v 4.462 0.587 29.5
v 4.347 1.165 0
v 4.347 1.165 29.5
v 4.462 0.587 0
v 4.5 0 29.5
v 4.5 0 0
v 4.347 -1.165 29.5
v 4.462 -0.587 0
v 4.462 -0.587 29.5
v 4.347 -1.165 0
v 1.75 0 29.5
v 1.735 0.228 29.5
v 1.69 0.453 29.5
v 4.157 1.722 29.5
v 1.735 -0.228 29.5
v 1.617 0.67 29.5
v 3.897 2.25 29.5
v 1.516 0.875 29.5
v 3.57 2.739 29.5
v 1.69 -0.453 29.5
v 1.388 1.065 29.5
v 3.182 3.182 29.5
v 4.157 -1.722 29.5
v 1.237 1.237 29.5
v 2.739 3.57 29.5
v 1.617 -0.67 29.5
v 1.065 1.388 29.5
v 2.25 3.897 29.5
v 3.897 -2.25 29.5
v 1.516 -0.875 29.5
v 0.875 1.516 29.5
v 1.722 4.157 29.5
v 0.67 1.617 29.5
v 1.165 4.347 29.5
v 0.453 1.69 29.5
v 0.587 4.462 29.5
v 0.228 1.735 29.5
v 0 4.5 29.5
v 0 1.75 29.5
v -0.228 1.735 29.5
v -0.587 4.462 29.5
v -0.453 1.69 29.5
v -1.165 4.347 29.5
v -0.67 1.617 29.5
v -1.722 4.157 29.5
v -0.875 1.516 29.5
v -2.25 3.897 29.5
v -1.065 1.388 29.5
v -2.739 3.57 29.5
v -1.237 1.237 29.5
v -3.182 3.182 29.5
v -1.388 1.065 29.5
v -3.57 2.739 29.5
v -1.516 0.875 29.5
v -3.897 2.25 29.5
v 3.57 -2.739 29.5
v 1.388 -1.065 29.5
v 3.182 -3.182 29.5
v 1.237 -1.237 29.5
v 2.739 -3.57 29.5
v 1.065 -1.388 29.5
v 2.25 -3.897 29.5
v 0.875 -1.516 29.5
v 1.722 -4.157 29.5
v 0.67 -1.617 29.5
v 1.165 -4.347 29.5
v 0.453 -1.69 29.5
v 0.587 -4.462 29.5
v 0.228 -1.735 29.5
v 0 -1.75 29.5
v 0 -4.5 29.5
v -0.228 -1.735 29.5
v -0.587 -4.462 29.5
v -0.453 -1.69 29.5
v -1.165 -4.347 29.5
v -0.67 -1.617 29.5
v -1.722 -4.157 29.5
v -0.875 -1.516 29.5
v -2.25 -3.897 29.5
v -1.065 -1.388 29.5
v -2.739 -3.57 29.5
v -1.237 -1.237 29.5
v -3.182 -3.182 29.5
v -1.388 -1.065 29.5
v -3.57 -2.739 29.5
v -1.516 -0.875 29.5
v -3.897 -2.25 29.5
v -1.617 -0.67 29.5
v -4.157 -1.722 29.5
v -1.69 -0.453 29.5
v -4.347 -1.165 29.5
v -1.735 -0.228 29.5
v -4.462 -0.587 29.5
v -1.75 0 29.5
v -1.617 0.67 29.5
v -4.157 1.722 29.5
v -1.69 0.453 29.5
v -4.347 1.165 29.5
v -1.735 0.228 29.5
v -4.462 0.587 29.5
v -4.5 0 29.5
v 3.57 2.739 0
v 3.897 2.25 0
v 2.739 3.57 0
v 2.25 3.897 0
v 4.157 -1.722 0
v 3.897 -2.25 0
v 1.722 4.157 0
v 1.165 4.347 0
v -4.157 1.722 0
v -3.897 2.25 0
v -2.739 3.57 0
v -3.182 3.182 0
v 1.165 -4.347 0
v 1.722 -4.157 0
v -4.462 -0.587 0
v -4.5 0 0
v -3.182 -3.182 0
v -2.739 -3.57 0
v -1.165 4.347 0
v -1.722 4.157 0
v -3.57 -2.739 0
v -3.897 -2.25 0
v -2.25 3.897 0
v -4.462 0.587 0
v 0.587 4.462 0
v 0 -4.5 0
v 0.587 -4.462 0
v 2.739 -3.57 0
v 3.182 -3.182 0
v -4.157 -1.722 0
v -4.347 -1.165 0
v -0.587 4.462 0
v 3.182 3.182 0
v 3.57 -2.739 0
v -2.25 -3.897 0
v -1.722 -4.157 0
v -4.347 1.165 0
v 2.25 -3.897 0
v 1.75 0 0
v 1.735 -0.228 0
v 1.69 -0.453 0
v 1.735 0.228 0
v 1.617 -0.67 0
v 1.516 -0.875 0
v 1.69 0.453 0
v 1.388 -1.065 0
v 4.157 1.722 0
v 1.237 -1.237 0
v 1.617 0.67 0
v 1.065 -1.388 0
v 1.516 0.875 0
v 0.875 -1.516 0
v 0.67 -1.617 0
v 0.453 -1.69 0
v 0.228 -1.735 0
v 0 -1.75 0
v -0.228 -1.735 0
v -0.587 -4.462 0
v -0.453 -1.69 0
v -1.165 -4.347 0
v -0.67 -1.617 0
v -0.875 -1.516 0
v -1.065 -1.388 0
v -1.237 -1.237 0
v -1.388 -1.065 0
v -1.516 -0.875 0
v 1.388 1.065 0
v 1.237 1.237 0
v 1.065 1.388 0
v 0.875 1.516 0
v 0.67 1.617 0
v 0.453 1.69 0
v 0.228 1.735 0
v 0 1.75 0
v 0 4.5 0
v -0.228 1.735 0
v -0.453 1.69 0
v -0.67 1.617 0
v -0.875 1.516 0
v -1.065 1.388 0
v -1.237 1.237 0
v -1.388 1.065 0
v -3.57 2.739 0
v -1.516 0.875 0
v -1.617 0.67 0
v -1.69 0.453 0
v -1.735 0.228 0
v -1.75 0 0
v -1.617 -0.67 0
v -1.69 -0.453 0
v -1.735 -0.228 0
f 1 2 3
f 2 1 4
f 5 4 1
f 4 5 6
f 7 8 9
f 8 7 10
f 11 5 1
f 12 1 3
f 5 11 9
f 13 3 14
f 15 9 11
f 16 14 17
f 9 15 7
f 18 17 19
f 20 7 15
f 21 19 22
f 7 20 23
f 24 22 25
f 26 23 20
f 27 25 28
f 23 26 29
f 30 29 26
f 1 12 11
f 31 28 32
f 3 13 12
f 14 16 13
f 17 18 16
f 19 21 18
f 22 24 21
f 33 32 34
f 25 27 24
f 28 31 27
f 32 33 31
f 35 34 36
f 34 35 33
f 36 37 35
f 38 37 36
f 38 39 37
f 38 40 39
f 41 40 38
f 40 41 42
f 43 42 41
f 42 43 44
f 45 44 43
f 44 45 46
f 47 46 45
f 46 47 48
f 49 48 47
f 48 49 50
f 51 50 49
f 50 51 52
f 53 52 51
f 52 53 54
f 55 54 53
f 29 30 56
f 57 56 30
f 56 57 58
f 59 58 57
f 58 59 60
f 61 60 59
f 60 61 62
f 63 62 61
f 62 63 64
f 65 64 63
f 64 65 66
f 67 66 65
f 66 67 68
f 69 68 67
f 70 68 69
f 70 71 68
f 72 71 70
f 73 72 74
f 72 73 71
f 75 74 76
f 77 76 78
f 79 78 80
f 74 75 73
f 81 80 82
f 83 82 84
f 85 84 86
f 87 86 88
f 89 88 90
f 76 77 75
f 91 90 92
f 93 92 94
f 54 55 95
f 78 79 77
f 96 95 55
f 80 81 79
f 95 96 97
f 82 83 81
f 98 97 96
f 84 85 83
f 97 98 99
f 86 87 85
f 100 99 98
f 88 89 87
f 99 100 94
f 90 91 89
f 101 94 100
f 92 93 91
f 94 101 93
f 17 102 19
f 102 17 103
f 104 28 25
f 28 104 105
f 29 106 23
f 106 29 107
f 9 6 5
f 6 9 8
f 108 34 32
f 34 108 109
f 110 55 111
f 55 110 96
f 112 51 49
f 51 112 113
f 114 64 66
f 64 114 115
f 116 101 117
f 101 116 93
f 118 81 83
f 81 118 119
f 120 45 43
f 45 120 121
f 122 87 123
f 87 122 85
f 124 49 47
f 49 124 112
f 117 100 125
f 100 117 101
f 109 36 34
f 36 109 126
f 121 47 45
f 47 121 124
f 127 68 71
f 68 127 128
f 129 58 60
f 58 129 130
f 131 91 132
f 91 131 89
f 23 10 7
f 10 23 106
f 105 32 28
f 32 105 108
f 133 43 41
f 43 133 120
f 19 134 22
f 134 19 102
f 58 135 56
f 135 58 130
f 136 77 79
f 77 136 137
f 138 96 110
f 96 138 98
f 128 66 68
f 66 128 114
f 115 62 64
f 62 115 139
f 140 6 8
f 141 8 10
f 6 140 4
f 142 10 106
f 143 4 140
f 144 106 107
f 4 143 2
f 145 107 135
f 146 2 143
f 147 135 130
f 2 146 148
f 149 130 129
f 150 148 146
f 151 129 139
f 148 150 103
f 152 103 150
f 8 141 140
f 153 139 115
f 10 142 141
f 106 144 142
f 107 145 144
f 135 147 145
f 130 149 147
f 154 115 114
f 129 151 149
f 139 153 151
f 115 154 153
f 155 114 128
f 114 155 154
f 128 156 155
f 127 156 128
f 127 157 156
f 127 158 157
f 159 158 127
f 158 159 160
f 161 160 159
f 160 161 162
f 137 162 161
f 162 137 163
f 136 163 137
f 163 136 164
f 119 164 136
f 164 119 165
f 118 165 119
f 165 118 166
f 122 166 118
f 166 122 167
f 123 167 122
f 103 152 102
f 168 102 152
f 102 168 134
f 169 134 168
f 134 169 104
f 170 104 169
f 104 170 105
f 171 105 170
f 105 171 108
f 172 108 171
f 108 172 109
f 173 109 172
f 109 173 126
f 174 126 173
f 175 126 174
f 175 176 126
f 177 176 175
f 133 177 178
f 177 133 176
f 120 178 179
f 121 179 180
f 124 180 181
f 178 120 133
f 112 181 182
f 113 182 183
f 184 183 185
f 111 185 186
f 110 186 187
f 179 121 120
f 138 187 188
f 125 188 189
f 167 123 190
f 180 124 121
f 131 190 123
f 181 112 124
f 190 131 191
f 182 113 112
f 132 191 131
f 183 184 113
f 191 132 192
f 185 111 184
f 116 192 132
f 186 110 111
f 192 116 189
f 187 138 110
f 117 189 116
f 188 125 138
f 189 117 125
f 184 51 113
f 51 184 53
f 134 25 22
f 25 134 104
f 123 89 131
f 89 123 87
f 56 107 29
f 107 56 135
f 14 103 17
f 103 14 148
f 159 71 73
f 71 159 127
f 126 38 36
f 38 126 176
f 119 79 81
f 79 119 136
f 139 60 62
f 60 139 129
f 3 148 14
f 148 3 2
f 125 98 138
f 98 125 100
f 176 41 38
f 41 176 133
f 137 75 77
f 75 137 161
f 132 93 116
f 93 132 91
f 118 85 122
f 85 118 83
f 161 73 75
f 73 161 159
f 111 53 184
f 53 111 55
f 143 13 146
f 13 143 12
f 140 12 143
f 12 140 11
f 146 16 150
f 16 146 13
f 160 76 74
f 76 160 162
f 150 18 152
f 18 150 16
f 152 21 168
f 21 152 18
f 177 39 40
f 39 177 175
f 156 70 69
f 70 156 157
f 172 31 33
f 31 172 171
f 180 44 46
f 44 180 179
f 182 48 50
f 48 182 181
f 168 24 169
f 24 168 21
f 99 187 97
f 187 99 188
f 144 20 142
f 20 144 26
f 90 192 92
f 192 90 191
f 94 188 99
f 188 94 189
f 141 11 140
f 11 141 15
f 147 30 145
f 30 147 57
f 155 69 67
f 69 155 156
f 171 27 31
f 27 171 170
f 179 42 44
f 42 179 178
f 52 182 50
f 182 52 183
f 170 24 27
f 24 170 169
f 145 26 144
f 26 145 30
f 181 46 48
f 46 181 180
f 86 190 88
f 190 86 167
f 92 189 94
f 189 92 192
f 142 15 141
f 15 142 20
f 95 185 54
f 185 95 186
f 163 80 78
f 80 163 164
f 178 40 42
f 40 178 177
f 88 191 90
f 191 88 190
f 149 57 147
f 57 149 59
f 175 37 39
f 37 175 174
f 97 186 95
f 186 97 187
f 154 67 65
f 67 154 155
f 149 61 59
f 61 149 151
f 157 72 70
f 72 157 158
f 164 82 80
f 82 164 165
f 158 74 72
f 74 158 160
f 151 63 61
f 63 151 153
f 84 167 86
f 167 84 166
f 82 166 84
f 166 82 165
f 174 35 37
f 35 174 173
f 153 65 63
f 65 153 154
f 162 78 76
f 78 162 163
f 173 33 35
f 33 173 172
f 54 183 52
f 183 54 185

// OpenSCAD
// file: parameters.scad
// =============================================================================
// Gen-CC — nightly 2026-10-13 (physics_scorer, honest magpylib watts)
// Stator-only upgrade for an existing Gen-BX: the R71 rotors and Ø168 steel stay as they are; a new annular 12-bobbin stator with 6.3 mm copper (magnet gap 9.35 → 8.90 mm) and longer r52–90 bobbins (the open-centre stator now packs one size up) replaces the old one, together with a shorter gap sleeve, frame rods moved out to R93.5 and new bearing bridges. No new magnets or steel.
// Clocking 0 deg (magnets N facing S) + D-flat keyed bore + index notch + flip-symmetric hole map.
// Windable 2-piece bobbin; turns = physics_scorer turns_fit; copper only between flanges.
// Steel back-iron: 2× Ø168 × 4.76 mm (3/16") mild-steel discs (steel_backiron_disc.dxf); magnets sit ON the steel
// (through-pockets) -> score with --back-iron. Night 2026-10-13.
// =============================================================================
topology            = "dual_rotor";

// --- Wire / winding (physics_scorer winding-fit) -------------------------------
wire_awg            = 26;
wire_od             = 0.45;     // insulated OD mm (bare 0.405)
fill_realistic      = 0.65;     // insulated-wire area / window (DENSE layered wind with a jig; scorer cap 0.65)
turns               = 391;       // = physics_scorer turns_fit (do NOT raise)
coil_former_type    = "bobbin";
coil_core_inset     = 15.20;     // radial copper build: hub = copper boundary inset by this
wind_build_axial    = 0.0;      // nothing proud of the flanges
wind_build_radial   = 0.0;

// --- Bobbin (base + lid) ---------------------------------------------------------
coil_id_r           = 52.00;    // copper boundary sector
coil_od_r           = 90.00;
span_deg            = 26.36;    // = pitch - 2*asin((wall+0.85)/coil_id_r) -> >=1.2 mm stator web
former_web          = 6.30;     // copper height between flanges (TALL copper: steel keeps Bz up)
flange_t            = 0.80;     // >= 0.8 mm FDM wall rule (tall winds push on the flanges)
wall                = 0.80;     // flange lip beyond copper
former_bare_h       = former_web + 2 * flange_t;
coil_envelope_h     = former_bare_h + 2 * wind_build_axial;
tab_w               = 7.0;
tab_len             = 7.0;
tab_h               = former_bare_h / 2;
pin_d               = 1.9;      // 1.75 mm filament locating pin
coil_mount_r        = coil_od_r + 0.2 + 4.0;
lead_y              = 1.6;
lead_slot_w         = 0.9;
lead_groove_d       = 0.6;

// --- Gap -------------------------------------------------------------------------
run_clear           = 0.50;     // rotor face -> flange
gap_spacer_h        = run_clear + wind_build_axial;
m2m                 = coil_envelope_h + 2 * run_clear;   // rotor face to rotor face (= gap_sleeve length)

// --- Stator ----------------------------------------------------------------------
coil_stations       = 12;
bay_clear           = 0.25;
stator_thick        = former_bare_h;                        // bobbins flush both faces
stator_od           = 198;
shaft_clear_stator  = 14.0;     // stator is static; gap sleeve OD 12 spins inside
stator_ir           = 46.95;    // ANNULAR stator: open centre (nested one-plate pack); inner rim 4.0 mm

// --- Rotor(s) --------------------------------------------------------------------
magnet_Br           = 1.43;     // N52
magnet_d_large      = 20.0;
magnet_h_large      = 5.0;      // one O20x5 per pocket
magnet_h_small      = 5.0;      // unused: no O5 pockets in this kit
halbach_magnetisation = "none";  // NO O5 assist magnets in this kit (scan: they lower the 4-pole score)
rotor_b_same_axis   = true;     // same-index magnets share one axis: N faces S across the gap
large_pocket_d      = 20.3;
small_pocket_d      = 5.3;
pocket_h            = 5.00;     // THROUGH the carrier: magnet back face sits on the steel disc (FLUSH seat: carrier = magnet height, magnet face level with the rotor face)
large_n             = 8;
R_large             = 71.0;
small_r_list        = [];       // no O5 pockets
carrier_od          = 168.0;
carrier_thick       = pocket_h;
hub_h               = 12.0;     // > steel_t + insert: radial set-screw clears the steel
hub_od              = 24.0;     // slim hub so the M4 brace rods fit at R~18 inside the coil ring
hub_insert_d        = 4.0;      // M3 heat-set insert, radial, bears on the D-flat
rotor_b_offset_deg  = 0.0;      // CLOCKING: magnets directly opposite
shaft_key           = "dflat";
dflat_depth         = 0.5;      // 8 mm shaft with 0.5 mm flat (7.5 across flat)
index_notch_d       = 3.0;

// --- Steel back-iron (buyable laser-cut) -------------------------------------------
steel_t             = 4.76;      // mild steel thickness (image method ignores it; sized from steel_flux.py so the return path stays well below saturation)
steel_center_hole   = 26.0;     // slips over the rotor hub (OD 24)
steel_od            = carrier_od;   // steel disc OD = rotor carrier OD

// --- Modular MAX interface ----------------------------------------------------------
shaft_bore          = 8.35;
dflat_x             = 4.0 - dflat_depth + (shaft_bore - 8.0) / 2;
bearing_d           = 21.85;
bearing_h           = 7.2;
m3_clear            = 3.5;
bolt_r_inner        = 30.0;     // M3 steel-disc clamp bolts (inside the magnet ring)
bolt_n_inner        = 4;
bolt_inner_angles   = [0, 90, 180, 270];
bolt_r_outer        = 44.0;     // second M3 steel-disc clamp ring
bolt_outer_angles   = [67.5, 112.5, 247.5, 292.5];
flange_bolt_r       = 93.5;     // frame rods: OUTSIDE the rotor OD (rotors spin inside them)
flange_bolt_n       = 4;
flange_bolt_offset  = 45.00;    // between coil stations -> never cuts a lead groove/tab
brace_r             = 18.0;
brace_d             = 4.3;      // temporary M4 jack rods (assembly only)
brace_n             = 4;
brace_angles        = [45, 135, 225, 315];          // flip-symmetric

spacer_pad_od       = 14.0;
spacer_pad_id       = m3_clear;
endbell_od          = 197.0;
endbell_thick       = 8.0;
endbell_shaft_clear = 10.0;
collar_h            = 10.0;
standoff_od         = 9.0;
frame_standoff_h    = run_clear + carrier_thick + hub_h + collar_h + 2.0;
sleeve_od           = 12.0;
plate_max_mm        = 410;

$fn = 64;
// main file
// Gen-CC — frame standoff tube between stator and an endbell, on each M3 frame rod (outside rotor OD).
// Print x4. Height = frame_standoff_h (rotor + steel + hub + collar + running clearance).
include <parameters.scad>;
$fn = 48;
difference() {
    cylinder(d=standoff_od, h=frame_standoff_h);
    translate([0, 0, -0.1]) cylinder(d=m3_clear, h=frame_standoff_h + 0.2);
}
